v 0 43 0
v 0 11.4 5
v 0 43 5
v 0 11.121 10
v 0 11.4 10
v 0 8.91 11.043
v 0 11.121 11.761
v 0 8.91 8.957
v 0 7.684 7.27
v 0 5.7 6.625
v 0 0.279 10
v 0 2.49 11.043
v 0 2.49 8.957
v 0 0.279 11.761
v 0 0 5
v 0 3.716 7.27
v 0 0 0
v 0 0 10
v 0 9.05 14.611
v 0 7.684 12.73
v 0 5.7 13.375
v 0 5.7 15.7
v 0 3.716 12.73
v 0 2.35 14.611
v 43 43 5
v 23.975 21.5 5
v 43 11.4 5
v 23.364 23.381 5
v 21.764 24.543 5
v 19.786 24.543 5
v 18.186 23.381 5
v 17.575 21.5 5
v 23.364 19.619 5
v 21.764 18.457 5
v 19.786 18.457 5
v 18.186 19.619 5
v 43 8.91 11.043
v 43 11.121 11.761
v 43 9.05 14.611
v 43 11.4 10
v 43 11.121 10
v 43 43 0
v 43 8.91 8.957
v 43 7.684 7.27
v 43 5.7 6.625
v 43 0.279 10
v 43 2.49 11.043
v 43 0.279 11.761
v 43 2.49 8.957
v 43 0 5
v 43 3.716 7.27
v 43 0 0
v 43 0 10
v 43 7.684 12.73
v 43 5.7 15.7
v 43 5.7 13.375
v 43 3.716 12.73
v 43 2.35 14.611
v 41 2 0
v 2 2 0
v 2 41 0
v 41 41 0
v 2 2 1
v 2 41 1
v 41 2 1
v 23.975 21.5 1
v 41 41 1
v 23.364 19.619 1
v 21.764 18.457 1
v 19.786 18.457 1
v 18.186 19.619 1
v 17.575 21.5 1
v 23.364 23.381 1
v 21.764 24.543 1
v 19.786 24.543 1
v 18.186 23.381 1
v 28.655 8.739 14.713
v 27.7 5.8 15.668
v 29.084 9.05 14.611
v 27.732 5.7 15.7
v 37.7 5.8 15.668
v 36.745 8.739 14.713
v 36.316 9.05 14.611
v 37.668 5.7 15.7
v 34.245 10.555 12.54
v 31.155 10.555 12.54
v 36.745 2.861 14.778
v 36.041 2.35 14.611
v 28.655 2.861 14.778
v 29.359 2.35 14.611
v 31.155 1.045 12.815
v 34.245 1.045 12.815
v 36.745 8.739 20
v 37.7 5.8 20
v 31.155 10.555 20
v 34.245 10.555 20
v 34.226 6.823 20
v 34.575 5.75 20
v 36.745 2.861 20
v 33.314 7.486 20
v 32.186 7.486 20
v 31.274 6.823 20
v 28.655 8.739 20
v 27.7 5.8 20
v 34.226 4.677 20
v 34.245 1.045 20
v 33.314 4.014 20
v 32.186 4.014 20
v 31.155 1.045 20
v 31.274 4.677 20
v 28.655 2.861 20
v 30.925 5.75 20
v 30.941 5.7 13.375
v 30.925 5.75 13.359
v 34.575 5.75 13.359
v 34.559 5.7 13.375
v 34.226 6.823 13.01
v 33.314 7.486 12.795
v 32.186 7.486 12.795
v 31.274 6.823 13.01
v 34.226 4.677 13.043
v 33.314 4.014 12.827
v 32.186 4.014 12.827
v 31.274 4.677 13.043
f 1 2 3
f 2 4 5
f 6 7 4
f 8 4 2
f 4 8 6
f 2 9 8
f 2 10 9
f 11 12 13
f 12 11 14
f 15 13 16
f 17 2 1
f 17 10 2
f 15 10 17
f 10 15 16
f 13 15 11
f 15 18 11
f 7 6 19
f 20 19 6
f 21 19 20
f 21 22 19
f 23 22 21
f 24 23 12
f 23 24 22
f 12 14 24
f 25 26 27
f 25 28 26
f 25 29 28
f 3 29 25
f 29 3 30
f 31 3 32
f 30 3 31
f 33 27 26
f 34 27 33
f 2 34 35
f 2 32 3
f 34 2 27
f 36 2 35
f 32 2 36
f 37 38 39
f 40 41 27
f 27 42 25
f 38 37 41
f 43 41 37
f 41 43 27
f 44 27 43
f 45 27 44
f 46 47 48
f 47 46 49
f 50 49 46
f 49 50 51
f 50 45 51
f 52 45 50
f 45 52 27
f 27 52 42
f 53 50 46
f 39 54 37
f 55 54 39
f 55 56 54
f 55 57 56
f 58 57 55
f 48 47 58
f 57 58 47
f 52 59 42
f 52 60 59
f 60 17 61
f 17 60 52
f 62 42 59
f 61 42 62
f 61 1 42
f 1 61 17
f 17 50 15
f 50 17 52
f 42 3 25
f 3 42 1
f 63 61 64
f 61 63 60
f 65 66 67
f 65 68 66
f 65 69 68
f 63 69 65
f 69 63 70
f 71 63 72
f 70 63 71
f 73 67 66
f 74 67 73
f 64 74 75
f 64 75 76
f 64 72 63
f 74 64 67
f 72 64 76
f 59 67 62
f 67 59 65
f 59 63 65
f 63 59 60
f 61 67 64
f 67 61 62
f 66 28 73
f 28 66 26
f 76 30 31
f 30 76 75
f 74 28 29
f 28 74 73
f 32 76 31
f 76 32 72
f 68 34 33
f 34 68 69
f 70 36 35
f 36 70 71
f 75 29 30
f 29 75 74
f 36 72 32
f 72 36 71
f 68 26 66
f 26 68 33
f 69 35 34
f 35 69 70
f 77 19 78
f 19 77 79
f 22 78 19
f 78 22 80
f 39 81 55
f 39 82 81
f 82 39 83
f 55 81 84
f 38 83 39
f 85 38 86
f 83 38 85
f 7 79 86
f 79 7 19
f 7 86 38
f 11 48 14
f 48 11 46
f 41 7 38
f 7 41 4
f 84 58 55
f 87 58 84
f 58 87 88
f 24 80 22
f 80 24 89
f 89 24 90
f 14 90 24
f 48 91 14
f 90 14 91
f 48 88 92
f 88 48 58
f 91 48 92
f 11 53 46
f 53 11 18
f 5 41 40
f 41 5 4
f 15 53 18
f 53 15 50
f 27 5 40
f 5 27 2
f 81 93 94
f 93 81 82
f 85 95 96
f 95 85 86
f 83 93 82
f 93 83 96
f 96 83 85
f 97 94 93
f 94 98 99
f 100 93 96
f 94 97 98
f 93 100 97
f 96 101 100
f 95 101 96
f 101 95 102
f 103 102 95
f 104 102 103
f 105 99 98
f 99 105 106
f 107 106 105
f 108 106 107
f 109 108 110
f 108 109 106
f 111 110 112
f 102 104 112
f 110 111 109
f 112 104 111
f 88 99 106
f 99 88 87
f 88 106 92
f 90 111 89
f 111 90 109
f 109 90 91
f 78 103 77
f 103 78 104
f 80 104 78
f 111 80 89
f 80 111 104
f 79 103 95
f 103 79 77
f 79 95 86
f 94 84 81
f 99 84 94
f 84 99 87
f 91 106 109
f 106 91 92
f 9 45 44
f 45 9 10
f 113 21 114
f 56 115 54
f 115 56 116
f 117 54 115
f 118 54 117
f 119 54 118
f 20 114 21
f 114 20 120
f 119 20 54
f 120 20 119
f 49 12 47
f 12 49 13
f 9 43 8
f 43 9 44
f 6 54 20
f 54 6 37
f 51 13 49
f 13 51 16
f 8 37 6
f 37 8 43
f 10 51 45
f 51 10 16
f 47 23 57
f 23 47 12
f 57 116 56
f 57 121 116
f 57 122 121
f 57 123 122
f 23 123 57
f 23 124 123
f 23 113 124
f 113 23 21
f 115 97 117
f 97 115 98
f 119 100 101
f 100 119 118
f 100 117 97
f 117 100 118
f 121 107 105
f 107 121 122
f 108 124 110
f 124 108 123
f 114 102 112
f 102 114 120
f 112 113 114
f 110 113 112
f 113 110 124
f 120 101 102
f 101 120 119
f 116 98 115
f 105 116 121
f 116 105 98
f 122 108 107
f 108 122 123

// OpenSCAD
aa=13.2;
rr=1; //raio parafuso fixação offset
sss=12;
res=10;
difference(){
    translate([0,0,0])cube([39+4,39+4,5]);
    #translate([2,2,-4])cube([39,39,5]);    
    #translate([(37.55+4)/2,(39+4)/2,-9])cylinder(5+9,6.4/2,6.4/2,$fn=res);
}

difference(){
    translate([0,-aa,0])
        {    
        translate([0,16.35+5.1/2,10])rotate([0,90,0])cylinder(39+4,6.4/2+0.5+2,6.4/2+0.5+2,$fn=res);
        translate([0,16.35+5.1/2-6.4/2-0.5-2,5])cube([39+4,7.4+4,5]);
        translate([20.7+sss,19,10]) cylinder(10,5,5,$fn=res);        
        }
    
    #translate([0,16.35+5.1/2-aa,10])rotate([0,90,0])cylinder(39+4,6.35/2+0.2,6.35/2+0.2,$fn=res);
    #translate([sss+(39+4)/2-0.75,(39+4)/2-15-0.75,10])cylinder(10,3.65/2,3.65/2,$fn=res);    
};

//(37.55+4)/2 - (16.35+5.1/2-13.2)


//translate([20.5,5.3,10]) difference(){
    //cylinder(10,5,5,$fn=100);    
//#translate([0,0,-2])cylinder(15,2,2,$fn=50);    
//};
